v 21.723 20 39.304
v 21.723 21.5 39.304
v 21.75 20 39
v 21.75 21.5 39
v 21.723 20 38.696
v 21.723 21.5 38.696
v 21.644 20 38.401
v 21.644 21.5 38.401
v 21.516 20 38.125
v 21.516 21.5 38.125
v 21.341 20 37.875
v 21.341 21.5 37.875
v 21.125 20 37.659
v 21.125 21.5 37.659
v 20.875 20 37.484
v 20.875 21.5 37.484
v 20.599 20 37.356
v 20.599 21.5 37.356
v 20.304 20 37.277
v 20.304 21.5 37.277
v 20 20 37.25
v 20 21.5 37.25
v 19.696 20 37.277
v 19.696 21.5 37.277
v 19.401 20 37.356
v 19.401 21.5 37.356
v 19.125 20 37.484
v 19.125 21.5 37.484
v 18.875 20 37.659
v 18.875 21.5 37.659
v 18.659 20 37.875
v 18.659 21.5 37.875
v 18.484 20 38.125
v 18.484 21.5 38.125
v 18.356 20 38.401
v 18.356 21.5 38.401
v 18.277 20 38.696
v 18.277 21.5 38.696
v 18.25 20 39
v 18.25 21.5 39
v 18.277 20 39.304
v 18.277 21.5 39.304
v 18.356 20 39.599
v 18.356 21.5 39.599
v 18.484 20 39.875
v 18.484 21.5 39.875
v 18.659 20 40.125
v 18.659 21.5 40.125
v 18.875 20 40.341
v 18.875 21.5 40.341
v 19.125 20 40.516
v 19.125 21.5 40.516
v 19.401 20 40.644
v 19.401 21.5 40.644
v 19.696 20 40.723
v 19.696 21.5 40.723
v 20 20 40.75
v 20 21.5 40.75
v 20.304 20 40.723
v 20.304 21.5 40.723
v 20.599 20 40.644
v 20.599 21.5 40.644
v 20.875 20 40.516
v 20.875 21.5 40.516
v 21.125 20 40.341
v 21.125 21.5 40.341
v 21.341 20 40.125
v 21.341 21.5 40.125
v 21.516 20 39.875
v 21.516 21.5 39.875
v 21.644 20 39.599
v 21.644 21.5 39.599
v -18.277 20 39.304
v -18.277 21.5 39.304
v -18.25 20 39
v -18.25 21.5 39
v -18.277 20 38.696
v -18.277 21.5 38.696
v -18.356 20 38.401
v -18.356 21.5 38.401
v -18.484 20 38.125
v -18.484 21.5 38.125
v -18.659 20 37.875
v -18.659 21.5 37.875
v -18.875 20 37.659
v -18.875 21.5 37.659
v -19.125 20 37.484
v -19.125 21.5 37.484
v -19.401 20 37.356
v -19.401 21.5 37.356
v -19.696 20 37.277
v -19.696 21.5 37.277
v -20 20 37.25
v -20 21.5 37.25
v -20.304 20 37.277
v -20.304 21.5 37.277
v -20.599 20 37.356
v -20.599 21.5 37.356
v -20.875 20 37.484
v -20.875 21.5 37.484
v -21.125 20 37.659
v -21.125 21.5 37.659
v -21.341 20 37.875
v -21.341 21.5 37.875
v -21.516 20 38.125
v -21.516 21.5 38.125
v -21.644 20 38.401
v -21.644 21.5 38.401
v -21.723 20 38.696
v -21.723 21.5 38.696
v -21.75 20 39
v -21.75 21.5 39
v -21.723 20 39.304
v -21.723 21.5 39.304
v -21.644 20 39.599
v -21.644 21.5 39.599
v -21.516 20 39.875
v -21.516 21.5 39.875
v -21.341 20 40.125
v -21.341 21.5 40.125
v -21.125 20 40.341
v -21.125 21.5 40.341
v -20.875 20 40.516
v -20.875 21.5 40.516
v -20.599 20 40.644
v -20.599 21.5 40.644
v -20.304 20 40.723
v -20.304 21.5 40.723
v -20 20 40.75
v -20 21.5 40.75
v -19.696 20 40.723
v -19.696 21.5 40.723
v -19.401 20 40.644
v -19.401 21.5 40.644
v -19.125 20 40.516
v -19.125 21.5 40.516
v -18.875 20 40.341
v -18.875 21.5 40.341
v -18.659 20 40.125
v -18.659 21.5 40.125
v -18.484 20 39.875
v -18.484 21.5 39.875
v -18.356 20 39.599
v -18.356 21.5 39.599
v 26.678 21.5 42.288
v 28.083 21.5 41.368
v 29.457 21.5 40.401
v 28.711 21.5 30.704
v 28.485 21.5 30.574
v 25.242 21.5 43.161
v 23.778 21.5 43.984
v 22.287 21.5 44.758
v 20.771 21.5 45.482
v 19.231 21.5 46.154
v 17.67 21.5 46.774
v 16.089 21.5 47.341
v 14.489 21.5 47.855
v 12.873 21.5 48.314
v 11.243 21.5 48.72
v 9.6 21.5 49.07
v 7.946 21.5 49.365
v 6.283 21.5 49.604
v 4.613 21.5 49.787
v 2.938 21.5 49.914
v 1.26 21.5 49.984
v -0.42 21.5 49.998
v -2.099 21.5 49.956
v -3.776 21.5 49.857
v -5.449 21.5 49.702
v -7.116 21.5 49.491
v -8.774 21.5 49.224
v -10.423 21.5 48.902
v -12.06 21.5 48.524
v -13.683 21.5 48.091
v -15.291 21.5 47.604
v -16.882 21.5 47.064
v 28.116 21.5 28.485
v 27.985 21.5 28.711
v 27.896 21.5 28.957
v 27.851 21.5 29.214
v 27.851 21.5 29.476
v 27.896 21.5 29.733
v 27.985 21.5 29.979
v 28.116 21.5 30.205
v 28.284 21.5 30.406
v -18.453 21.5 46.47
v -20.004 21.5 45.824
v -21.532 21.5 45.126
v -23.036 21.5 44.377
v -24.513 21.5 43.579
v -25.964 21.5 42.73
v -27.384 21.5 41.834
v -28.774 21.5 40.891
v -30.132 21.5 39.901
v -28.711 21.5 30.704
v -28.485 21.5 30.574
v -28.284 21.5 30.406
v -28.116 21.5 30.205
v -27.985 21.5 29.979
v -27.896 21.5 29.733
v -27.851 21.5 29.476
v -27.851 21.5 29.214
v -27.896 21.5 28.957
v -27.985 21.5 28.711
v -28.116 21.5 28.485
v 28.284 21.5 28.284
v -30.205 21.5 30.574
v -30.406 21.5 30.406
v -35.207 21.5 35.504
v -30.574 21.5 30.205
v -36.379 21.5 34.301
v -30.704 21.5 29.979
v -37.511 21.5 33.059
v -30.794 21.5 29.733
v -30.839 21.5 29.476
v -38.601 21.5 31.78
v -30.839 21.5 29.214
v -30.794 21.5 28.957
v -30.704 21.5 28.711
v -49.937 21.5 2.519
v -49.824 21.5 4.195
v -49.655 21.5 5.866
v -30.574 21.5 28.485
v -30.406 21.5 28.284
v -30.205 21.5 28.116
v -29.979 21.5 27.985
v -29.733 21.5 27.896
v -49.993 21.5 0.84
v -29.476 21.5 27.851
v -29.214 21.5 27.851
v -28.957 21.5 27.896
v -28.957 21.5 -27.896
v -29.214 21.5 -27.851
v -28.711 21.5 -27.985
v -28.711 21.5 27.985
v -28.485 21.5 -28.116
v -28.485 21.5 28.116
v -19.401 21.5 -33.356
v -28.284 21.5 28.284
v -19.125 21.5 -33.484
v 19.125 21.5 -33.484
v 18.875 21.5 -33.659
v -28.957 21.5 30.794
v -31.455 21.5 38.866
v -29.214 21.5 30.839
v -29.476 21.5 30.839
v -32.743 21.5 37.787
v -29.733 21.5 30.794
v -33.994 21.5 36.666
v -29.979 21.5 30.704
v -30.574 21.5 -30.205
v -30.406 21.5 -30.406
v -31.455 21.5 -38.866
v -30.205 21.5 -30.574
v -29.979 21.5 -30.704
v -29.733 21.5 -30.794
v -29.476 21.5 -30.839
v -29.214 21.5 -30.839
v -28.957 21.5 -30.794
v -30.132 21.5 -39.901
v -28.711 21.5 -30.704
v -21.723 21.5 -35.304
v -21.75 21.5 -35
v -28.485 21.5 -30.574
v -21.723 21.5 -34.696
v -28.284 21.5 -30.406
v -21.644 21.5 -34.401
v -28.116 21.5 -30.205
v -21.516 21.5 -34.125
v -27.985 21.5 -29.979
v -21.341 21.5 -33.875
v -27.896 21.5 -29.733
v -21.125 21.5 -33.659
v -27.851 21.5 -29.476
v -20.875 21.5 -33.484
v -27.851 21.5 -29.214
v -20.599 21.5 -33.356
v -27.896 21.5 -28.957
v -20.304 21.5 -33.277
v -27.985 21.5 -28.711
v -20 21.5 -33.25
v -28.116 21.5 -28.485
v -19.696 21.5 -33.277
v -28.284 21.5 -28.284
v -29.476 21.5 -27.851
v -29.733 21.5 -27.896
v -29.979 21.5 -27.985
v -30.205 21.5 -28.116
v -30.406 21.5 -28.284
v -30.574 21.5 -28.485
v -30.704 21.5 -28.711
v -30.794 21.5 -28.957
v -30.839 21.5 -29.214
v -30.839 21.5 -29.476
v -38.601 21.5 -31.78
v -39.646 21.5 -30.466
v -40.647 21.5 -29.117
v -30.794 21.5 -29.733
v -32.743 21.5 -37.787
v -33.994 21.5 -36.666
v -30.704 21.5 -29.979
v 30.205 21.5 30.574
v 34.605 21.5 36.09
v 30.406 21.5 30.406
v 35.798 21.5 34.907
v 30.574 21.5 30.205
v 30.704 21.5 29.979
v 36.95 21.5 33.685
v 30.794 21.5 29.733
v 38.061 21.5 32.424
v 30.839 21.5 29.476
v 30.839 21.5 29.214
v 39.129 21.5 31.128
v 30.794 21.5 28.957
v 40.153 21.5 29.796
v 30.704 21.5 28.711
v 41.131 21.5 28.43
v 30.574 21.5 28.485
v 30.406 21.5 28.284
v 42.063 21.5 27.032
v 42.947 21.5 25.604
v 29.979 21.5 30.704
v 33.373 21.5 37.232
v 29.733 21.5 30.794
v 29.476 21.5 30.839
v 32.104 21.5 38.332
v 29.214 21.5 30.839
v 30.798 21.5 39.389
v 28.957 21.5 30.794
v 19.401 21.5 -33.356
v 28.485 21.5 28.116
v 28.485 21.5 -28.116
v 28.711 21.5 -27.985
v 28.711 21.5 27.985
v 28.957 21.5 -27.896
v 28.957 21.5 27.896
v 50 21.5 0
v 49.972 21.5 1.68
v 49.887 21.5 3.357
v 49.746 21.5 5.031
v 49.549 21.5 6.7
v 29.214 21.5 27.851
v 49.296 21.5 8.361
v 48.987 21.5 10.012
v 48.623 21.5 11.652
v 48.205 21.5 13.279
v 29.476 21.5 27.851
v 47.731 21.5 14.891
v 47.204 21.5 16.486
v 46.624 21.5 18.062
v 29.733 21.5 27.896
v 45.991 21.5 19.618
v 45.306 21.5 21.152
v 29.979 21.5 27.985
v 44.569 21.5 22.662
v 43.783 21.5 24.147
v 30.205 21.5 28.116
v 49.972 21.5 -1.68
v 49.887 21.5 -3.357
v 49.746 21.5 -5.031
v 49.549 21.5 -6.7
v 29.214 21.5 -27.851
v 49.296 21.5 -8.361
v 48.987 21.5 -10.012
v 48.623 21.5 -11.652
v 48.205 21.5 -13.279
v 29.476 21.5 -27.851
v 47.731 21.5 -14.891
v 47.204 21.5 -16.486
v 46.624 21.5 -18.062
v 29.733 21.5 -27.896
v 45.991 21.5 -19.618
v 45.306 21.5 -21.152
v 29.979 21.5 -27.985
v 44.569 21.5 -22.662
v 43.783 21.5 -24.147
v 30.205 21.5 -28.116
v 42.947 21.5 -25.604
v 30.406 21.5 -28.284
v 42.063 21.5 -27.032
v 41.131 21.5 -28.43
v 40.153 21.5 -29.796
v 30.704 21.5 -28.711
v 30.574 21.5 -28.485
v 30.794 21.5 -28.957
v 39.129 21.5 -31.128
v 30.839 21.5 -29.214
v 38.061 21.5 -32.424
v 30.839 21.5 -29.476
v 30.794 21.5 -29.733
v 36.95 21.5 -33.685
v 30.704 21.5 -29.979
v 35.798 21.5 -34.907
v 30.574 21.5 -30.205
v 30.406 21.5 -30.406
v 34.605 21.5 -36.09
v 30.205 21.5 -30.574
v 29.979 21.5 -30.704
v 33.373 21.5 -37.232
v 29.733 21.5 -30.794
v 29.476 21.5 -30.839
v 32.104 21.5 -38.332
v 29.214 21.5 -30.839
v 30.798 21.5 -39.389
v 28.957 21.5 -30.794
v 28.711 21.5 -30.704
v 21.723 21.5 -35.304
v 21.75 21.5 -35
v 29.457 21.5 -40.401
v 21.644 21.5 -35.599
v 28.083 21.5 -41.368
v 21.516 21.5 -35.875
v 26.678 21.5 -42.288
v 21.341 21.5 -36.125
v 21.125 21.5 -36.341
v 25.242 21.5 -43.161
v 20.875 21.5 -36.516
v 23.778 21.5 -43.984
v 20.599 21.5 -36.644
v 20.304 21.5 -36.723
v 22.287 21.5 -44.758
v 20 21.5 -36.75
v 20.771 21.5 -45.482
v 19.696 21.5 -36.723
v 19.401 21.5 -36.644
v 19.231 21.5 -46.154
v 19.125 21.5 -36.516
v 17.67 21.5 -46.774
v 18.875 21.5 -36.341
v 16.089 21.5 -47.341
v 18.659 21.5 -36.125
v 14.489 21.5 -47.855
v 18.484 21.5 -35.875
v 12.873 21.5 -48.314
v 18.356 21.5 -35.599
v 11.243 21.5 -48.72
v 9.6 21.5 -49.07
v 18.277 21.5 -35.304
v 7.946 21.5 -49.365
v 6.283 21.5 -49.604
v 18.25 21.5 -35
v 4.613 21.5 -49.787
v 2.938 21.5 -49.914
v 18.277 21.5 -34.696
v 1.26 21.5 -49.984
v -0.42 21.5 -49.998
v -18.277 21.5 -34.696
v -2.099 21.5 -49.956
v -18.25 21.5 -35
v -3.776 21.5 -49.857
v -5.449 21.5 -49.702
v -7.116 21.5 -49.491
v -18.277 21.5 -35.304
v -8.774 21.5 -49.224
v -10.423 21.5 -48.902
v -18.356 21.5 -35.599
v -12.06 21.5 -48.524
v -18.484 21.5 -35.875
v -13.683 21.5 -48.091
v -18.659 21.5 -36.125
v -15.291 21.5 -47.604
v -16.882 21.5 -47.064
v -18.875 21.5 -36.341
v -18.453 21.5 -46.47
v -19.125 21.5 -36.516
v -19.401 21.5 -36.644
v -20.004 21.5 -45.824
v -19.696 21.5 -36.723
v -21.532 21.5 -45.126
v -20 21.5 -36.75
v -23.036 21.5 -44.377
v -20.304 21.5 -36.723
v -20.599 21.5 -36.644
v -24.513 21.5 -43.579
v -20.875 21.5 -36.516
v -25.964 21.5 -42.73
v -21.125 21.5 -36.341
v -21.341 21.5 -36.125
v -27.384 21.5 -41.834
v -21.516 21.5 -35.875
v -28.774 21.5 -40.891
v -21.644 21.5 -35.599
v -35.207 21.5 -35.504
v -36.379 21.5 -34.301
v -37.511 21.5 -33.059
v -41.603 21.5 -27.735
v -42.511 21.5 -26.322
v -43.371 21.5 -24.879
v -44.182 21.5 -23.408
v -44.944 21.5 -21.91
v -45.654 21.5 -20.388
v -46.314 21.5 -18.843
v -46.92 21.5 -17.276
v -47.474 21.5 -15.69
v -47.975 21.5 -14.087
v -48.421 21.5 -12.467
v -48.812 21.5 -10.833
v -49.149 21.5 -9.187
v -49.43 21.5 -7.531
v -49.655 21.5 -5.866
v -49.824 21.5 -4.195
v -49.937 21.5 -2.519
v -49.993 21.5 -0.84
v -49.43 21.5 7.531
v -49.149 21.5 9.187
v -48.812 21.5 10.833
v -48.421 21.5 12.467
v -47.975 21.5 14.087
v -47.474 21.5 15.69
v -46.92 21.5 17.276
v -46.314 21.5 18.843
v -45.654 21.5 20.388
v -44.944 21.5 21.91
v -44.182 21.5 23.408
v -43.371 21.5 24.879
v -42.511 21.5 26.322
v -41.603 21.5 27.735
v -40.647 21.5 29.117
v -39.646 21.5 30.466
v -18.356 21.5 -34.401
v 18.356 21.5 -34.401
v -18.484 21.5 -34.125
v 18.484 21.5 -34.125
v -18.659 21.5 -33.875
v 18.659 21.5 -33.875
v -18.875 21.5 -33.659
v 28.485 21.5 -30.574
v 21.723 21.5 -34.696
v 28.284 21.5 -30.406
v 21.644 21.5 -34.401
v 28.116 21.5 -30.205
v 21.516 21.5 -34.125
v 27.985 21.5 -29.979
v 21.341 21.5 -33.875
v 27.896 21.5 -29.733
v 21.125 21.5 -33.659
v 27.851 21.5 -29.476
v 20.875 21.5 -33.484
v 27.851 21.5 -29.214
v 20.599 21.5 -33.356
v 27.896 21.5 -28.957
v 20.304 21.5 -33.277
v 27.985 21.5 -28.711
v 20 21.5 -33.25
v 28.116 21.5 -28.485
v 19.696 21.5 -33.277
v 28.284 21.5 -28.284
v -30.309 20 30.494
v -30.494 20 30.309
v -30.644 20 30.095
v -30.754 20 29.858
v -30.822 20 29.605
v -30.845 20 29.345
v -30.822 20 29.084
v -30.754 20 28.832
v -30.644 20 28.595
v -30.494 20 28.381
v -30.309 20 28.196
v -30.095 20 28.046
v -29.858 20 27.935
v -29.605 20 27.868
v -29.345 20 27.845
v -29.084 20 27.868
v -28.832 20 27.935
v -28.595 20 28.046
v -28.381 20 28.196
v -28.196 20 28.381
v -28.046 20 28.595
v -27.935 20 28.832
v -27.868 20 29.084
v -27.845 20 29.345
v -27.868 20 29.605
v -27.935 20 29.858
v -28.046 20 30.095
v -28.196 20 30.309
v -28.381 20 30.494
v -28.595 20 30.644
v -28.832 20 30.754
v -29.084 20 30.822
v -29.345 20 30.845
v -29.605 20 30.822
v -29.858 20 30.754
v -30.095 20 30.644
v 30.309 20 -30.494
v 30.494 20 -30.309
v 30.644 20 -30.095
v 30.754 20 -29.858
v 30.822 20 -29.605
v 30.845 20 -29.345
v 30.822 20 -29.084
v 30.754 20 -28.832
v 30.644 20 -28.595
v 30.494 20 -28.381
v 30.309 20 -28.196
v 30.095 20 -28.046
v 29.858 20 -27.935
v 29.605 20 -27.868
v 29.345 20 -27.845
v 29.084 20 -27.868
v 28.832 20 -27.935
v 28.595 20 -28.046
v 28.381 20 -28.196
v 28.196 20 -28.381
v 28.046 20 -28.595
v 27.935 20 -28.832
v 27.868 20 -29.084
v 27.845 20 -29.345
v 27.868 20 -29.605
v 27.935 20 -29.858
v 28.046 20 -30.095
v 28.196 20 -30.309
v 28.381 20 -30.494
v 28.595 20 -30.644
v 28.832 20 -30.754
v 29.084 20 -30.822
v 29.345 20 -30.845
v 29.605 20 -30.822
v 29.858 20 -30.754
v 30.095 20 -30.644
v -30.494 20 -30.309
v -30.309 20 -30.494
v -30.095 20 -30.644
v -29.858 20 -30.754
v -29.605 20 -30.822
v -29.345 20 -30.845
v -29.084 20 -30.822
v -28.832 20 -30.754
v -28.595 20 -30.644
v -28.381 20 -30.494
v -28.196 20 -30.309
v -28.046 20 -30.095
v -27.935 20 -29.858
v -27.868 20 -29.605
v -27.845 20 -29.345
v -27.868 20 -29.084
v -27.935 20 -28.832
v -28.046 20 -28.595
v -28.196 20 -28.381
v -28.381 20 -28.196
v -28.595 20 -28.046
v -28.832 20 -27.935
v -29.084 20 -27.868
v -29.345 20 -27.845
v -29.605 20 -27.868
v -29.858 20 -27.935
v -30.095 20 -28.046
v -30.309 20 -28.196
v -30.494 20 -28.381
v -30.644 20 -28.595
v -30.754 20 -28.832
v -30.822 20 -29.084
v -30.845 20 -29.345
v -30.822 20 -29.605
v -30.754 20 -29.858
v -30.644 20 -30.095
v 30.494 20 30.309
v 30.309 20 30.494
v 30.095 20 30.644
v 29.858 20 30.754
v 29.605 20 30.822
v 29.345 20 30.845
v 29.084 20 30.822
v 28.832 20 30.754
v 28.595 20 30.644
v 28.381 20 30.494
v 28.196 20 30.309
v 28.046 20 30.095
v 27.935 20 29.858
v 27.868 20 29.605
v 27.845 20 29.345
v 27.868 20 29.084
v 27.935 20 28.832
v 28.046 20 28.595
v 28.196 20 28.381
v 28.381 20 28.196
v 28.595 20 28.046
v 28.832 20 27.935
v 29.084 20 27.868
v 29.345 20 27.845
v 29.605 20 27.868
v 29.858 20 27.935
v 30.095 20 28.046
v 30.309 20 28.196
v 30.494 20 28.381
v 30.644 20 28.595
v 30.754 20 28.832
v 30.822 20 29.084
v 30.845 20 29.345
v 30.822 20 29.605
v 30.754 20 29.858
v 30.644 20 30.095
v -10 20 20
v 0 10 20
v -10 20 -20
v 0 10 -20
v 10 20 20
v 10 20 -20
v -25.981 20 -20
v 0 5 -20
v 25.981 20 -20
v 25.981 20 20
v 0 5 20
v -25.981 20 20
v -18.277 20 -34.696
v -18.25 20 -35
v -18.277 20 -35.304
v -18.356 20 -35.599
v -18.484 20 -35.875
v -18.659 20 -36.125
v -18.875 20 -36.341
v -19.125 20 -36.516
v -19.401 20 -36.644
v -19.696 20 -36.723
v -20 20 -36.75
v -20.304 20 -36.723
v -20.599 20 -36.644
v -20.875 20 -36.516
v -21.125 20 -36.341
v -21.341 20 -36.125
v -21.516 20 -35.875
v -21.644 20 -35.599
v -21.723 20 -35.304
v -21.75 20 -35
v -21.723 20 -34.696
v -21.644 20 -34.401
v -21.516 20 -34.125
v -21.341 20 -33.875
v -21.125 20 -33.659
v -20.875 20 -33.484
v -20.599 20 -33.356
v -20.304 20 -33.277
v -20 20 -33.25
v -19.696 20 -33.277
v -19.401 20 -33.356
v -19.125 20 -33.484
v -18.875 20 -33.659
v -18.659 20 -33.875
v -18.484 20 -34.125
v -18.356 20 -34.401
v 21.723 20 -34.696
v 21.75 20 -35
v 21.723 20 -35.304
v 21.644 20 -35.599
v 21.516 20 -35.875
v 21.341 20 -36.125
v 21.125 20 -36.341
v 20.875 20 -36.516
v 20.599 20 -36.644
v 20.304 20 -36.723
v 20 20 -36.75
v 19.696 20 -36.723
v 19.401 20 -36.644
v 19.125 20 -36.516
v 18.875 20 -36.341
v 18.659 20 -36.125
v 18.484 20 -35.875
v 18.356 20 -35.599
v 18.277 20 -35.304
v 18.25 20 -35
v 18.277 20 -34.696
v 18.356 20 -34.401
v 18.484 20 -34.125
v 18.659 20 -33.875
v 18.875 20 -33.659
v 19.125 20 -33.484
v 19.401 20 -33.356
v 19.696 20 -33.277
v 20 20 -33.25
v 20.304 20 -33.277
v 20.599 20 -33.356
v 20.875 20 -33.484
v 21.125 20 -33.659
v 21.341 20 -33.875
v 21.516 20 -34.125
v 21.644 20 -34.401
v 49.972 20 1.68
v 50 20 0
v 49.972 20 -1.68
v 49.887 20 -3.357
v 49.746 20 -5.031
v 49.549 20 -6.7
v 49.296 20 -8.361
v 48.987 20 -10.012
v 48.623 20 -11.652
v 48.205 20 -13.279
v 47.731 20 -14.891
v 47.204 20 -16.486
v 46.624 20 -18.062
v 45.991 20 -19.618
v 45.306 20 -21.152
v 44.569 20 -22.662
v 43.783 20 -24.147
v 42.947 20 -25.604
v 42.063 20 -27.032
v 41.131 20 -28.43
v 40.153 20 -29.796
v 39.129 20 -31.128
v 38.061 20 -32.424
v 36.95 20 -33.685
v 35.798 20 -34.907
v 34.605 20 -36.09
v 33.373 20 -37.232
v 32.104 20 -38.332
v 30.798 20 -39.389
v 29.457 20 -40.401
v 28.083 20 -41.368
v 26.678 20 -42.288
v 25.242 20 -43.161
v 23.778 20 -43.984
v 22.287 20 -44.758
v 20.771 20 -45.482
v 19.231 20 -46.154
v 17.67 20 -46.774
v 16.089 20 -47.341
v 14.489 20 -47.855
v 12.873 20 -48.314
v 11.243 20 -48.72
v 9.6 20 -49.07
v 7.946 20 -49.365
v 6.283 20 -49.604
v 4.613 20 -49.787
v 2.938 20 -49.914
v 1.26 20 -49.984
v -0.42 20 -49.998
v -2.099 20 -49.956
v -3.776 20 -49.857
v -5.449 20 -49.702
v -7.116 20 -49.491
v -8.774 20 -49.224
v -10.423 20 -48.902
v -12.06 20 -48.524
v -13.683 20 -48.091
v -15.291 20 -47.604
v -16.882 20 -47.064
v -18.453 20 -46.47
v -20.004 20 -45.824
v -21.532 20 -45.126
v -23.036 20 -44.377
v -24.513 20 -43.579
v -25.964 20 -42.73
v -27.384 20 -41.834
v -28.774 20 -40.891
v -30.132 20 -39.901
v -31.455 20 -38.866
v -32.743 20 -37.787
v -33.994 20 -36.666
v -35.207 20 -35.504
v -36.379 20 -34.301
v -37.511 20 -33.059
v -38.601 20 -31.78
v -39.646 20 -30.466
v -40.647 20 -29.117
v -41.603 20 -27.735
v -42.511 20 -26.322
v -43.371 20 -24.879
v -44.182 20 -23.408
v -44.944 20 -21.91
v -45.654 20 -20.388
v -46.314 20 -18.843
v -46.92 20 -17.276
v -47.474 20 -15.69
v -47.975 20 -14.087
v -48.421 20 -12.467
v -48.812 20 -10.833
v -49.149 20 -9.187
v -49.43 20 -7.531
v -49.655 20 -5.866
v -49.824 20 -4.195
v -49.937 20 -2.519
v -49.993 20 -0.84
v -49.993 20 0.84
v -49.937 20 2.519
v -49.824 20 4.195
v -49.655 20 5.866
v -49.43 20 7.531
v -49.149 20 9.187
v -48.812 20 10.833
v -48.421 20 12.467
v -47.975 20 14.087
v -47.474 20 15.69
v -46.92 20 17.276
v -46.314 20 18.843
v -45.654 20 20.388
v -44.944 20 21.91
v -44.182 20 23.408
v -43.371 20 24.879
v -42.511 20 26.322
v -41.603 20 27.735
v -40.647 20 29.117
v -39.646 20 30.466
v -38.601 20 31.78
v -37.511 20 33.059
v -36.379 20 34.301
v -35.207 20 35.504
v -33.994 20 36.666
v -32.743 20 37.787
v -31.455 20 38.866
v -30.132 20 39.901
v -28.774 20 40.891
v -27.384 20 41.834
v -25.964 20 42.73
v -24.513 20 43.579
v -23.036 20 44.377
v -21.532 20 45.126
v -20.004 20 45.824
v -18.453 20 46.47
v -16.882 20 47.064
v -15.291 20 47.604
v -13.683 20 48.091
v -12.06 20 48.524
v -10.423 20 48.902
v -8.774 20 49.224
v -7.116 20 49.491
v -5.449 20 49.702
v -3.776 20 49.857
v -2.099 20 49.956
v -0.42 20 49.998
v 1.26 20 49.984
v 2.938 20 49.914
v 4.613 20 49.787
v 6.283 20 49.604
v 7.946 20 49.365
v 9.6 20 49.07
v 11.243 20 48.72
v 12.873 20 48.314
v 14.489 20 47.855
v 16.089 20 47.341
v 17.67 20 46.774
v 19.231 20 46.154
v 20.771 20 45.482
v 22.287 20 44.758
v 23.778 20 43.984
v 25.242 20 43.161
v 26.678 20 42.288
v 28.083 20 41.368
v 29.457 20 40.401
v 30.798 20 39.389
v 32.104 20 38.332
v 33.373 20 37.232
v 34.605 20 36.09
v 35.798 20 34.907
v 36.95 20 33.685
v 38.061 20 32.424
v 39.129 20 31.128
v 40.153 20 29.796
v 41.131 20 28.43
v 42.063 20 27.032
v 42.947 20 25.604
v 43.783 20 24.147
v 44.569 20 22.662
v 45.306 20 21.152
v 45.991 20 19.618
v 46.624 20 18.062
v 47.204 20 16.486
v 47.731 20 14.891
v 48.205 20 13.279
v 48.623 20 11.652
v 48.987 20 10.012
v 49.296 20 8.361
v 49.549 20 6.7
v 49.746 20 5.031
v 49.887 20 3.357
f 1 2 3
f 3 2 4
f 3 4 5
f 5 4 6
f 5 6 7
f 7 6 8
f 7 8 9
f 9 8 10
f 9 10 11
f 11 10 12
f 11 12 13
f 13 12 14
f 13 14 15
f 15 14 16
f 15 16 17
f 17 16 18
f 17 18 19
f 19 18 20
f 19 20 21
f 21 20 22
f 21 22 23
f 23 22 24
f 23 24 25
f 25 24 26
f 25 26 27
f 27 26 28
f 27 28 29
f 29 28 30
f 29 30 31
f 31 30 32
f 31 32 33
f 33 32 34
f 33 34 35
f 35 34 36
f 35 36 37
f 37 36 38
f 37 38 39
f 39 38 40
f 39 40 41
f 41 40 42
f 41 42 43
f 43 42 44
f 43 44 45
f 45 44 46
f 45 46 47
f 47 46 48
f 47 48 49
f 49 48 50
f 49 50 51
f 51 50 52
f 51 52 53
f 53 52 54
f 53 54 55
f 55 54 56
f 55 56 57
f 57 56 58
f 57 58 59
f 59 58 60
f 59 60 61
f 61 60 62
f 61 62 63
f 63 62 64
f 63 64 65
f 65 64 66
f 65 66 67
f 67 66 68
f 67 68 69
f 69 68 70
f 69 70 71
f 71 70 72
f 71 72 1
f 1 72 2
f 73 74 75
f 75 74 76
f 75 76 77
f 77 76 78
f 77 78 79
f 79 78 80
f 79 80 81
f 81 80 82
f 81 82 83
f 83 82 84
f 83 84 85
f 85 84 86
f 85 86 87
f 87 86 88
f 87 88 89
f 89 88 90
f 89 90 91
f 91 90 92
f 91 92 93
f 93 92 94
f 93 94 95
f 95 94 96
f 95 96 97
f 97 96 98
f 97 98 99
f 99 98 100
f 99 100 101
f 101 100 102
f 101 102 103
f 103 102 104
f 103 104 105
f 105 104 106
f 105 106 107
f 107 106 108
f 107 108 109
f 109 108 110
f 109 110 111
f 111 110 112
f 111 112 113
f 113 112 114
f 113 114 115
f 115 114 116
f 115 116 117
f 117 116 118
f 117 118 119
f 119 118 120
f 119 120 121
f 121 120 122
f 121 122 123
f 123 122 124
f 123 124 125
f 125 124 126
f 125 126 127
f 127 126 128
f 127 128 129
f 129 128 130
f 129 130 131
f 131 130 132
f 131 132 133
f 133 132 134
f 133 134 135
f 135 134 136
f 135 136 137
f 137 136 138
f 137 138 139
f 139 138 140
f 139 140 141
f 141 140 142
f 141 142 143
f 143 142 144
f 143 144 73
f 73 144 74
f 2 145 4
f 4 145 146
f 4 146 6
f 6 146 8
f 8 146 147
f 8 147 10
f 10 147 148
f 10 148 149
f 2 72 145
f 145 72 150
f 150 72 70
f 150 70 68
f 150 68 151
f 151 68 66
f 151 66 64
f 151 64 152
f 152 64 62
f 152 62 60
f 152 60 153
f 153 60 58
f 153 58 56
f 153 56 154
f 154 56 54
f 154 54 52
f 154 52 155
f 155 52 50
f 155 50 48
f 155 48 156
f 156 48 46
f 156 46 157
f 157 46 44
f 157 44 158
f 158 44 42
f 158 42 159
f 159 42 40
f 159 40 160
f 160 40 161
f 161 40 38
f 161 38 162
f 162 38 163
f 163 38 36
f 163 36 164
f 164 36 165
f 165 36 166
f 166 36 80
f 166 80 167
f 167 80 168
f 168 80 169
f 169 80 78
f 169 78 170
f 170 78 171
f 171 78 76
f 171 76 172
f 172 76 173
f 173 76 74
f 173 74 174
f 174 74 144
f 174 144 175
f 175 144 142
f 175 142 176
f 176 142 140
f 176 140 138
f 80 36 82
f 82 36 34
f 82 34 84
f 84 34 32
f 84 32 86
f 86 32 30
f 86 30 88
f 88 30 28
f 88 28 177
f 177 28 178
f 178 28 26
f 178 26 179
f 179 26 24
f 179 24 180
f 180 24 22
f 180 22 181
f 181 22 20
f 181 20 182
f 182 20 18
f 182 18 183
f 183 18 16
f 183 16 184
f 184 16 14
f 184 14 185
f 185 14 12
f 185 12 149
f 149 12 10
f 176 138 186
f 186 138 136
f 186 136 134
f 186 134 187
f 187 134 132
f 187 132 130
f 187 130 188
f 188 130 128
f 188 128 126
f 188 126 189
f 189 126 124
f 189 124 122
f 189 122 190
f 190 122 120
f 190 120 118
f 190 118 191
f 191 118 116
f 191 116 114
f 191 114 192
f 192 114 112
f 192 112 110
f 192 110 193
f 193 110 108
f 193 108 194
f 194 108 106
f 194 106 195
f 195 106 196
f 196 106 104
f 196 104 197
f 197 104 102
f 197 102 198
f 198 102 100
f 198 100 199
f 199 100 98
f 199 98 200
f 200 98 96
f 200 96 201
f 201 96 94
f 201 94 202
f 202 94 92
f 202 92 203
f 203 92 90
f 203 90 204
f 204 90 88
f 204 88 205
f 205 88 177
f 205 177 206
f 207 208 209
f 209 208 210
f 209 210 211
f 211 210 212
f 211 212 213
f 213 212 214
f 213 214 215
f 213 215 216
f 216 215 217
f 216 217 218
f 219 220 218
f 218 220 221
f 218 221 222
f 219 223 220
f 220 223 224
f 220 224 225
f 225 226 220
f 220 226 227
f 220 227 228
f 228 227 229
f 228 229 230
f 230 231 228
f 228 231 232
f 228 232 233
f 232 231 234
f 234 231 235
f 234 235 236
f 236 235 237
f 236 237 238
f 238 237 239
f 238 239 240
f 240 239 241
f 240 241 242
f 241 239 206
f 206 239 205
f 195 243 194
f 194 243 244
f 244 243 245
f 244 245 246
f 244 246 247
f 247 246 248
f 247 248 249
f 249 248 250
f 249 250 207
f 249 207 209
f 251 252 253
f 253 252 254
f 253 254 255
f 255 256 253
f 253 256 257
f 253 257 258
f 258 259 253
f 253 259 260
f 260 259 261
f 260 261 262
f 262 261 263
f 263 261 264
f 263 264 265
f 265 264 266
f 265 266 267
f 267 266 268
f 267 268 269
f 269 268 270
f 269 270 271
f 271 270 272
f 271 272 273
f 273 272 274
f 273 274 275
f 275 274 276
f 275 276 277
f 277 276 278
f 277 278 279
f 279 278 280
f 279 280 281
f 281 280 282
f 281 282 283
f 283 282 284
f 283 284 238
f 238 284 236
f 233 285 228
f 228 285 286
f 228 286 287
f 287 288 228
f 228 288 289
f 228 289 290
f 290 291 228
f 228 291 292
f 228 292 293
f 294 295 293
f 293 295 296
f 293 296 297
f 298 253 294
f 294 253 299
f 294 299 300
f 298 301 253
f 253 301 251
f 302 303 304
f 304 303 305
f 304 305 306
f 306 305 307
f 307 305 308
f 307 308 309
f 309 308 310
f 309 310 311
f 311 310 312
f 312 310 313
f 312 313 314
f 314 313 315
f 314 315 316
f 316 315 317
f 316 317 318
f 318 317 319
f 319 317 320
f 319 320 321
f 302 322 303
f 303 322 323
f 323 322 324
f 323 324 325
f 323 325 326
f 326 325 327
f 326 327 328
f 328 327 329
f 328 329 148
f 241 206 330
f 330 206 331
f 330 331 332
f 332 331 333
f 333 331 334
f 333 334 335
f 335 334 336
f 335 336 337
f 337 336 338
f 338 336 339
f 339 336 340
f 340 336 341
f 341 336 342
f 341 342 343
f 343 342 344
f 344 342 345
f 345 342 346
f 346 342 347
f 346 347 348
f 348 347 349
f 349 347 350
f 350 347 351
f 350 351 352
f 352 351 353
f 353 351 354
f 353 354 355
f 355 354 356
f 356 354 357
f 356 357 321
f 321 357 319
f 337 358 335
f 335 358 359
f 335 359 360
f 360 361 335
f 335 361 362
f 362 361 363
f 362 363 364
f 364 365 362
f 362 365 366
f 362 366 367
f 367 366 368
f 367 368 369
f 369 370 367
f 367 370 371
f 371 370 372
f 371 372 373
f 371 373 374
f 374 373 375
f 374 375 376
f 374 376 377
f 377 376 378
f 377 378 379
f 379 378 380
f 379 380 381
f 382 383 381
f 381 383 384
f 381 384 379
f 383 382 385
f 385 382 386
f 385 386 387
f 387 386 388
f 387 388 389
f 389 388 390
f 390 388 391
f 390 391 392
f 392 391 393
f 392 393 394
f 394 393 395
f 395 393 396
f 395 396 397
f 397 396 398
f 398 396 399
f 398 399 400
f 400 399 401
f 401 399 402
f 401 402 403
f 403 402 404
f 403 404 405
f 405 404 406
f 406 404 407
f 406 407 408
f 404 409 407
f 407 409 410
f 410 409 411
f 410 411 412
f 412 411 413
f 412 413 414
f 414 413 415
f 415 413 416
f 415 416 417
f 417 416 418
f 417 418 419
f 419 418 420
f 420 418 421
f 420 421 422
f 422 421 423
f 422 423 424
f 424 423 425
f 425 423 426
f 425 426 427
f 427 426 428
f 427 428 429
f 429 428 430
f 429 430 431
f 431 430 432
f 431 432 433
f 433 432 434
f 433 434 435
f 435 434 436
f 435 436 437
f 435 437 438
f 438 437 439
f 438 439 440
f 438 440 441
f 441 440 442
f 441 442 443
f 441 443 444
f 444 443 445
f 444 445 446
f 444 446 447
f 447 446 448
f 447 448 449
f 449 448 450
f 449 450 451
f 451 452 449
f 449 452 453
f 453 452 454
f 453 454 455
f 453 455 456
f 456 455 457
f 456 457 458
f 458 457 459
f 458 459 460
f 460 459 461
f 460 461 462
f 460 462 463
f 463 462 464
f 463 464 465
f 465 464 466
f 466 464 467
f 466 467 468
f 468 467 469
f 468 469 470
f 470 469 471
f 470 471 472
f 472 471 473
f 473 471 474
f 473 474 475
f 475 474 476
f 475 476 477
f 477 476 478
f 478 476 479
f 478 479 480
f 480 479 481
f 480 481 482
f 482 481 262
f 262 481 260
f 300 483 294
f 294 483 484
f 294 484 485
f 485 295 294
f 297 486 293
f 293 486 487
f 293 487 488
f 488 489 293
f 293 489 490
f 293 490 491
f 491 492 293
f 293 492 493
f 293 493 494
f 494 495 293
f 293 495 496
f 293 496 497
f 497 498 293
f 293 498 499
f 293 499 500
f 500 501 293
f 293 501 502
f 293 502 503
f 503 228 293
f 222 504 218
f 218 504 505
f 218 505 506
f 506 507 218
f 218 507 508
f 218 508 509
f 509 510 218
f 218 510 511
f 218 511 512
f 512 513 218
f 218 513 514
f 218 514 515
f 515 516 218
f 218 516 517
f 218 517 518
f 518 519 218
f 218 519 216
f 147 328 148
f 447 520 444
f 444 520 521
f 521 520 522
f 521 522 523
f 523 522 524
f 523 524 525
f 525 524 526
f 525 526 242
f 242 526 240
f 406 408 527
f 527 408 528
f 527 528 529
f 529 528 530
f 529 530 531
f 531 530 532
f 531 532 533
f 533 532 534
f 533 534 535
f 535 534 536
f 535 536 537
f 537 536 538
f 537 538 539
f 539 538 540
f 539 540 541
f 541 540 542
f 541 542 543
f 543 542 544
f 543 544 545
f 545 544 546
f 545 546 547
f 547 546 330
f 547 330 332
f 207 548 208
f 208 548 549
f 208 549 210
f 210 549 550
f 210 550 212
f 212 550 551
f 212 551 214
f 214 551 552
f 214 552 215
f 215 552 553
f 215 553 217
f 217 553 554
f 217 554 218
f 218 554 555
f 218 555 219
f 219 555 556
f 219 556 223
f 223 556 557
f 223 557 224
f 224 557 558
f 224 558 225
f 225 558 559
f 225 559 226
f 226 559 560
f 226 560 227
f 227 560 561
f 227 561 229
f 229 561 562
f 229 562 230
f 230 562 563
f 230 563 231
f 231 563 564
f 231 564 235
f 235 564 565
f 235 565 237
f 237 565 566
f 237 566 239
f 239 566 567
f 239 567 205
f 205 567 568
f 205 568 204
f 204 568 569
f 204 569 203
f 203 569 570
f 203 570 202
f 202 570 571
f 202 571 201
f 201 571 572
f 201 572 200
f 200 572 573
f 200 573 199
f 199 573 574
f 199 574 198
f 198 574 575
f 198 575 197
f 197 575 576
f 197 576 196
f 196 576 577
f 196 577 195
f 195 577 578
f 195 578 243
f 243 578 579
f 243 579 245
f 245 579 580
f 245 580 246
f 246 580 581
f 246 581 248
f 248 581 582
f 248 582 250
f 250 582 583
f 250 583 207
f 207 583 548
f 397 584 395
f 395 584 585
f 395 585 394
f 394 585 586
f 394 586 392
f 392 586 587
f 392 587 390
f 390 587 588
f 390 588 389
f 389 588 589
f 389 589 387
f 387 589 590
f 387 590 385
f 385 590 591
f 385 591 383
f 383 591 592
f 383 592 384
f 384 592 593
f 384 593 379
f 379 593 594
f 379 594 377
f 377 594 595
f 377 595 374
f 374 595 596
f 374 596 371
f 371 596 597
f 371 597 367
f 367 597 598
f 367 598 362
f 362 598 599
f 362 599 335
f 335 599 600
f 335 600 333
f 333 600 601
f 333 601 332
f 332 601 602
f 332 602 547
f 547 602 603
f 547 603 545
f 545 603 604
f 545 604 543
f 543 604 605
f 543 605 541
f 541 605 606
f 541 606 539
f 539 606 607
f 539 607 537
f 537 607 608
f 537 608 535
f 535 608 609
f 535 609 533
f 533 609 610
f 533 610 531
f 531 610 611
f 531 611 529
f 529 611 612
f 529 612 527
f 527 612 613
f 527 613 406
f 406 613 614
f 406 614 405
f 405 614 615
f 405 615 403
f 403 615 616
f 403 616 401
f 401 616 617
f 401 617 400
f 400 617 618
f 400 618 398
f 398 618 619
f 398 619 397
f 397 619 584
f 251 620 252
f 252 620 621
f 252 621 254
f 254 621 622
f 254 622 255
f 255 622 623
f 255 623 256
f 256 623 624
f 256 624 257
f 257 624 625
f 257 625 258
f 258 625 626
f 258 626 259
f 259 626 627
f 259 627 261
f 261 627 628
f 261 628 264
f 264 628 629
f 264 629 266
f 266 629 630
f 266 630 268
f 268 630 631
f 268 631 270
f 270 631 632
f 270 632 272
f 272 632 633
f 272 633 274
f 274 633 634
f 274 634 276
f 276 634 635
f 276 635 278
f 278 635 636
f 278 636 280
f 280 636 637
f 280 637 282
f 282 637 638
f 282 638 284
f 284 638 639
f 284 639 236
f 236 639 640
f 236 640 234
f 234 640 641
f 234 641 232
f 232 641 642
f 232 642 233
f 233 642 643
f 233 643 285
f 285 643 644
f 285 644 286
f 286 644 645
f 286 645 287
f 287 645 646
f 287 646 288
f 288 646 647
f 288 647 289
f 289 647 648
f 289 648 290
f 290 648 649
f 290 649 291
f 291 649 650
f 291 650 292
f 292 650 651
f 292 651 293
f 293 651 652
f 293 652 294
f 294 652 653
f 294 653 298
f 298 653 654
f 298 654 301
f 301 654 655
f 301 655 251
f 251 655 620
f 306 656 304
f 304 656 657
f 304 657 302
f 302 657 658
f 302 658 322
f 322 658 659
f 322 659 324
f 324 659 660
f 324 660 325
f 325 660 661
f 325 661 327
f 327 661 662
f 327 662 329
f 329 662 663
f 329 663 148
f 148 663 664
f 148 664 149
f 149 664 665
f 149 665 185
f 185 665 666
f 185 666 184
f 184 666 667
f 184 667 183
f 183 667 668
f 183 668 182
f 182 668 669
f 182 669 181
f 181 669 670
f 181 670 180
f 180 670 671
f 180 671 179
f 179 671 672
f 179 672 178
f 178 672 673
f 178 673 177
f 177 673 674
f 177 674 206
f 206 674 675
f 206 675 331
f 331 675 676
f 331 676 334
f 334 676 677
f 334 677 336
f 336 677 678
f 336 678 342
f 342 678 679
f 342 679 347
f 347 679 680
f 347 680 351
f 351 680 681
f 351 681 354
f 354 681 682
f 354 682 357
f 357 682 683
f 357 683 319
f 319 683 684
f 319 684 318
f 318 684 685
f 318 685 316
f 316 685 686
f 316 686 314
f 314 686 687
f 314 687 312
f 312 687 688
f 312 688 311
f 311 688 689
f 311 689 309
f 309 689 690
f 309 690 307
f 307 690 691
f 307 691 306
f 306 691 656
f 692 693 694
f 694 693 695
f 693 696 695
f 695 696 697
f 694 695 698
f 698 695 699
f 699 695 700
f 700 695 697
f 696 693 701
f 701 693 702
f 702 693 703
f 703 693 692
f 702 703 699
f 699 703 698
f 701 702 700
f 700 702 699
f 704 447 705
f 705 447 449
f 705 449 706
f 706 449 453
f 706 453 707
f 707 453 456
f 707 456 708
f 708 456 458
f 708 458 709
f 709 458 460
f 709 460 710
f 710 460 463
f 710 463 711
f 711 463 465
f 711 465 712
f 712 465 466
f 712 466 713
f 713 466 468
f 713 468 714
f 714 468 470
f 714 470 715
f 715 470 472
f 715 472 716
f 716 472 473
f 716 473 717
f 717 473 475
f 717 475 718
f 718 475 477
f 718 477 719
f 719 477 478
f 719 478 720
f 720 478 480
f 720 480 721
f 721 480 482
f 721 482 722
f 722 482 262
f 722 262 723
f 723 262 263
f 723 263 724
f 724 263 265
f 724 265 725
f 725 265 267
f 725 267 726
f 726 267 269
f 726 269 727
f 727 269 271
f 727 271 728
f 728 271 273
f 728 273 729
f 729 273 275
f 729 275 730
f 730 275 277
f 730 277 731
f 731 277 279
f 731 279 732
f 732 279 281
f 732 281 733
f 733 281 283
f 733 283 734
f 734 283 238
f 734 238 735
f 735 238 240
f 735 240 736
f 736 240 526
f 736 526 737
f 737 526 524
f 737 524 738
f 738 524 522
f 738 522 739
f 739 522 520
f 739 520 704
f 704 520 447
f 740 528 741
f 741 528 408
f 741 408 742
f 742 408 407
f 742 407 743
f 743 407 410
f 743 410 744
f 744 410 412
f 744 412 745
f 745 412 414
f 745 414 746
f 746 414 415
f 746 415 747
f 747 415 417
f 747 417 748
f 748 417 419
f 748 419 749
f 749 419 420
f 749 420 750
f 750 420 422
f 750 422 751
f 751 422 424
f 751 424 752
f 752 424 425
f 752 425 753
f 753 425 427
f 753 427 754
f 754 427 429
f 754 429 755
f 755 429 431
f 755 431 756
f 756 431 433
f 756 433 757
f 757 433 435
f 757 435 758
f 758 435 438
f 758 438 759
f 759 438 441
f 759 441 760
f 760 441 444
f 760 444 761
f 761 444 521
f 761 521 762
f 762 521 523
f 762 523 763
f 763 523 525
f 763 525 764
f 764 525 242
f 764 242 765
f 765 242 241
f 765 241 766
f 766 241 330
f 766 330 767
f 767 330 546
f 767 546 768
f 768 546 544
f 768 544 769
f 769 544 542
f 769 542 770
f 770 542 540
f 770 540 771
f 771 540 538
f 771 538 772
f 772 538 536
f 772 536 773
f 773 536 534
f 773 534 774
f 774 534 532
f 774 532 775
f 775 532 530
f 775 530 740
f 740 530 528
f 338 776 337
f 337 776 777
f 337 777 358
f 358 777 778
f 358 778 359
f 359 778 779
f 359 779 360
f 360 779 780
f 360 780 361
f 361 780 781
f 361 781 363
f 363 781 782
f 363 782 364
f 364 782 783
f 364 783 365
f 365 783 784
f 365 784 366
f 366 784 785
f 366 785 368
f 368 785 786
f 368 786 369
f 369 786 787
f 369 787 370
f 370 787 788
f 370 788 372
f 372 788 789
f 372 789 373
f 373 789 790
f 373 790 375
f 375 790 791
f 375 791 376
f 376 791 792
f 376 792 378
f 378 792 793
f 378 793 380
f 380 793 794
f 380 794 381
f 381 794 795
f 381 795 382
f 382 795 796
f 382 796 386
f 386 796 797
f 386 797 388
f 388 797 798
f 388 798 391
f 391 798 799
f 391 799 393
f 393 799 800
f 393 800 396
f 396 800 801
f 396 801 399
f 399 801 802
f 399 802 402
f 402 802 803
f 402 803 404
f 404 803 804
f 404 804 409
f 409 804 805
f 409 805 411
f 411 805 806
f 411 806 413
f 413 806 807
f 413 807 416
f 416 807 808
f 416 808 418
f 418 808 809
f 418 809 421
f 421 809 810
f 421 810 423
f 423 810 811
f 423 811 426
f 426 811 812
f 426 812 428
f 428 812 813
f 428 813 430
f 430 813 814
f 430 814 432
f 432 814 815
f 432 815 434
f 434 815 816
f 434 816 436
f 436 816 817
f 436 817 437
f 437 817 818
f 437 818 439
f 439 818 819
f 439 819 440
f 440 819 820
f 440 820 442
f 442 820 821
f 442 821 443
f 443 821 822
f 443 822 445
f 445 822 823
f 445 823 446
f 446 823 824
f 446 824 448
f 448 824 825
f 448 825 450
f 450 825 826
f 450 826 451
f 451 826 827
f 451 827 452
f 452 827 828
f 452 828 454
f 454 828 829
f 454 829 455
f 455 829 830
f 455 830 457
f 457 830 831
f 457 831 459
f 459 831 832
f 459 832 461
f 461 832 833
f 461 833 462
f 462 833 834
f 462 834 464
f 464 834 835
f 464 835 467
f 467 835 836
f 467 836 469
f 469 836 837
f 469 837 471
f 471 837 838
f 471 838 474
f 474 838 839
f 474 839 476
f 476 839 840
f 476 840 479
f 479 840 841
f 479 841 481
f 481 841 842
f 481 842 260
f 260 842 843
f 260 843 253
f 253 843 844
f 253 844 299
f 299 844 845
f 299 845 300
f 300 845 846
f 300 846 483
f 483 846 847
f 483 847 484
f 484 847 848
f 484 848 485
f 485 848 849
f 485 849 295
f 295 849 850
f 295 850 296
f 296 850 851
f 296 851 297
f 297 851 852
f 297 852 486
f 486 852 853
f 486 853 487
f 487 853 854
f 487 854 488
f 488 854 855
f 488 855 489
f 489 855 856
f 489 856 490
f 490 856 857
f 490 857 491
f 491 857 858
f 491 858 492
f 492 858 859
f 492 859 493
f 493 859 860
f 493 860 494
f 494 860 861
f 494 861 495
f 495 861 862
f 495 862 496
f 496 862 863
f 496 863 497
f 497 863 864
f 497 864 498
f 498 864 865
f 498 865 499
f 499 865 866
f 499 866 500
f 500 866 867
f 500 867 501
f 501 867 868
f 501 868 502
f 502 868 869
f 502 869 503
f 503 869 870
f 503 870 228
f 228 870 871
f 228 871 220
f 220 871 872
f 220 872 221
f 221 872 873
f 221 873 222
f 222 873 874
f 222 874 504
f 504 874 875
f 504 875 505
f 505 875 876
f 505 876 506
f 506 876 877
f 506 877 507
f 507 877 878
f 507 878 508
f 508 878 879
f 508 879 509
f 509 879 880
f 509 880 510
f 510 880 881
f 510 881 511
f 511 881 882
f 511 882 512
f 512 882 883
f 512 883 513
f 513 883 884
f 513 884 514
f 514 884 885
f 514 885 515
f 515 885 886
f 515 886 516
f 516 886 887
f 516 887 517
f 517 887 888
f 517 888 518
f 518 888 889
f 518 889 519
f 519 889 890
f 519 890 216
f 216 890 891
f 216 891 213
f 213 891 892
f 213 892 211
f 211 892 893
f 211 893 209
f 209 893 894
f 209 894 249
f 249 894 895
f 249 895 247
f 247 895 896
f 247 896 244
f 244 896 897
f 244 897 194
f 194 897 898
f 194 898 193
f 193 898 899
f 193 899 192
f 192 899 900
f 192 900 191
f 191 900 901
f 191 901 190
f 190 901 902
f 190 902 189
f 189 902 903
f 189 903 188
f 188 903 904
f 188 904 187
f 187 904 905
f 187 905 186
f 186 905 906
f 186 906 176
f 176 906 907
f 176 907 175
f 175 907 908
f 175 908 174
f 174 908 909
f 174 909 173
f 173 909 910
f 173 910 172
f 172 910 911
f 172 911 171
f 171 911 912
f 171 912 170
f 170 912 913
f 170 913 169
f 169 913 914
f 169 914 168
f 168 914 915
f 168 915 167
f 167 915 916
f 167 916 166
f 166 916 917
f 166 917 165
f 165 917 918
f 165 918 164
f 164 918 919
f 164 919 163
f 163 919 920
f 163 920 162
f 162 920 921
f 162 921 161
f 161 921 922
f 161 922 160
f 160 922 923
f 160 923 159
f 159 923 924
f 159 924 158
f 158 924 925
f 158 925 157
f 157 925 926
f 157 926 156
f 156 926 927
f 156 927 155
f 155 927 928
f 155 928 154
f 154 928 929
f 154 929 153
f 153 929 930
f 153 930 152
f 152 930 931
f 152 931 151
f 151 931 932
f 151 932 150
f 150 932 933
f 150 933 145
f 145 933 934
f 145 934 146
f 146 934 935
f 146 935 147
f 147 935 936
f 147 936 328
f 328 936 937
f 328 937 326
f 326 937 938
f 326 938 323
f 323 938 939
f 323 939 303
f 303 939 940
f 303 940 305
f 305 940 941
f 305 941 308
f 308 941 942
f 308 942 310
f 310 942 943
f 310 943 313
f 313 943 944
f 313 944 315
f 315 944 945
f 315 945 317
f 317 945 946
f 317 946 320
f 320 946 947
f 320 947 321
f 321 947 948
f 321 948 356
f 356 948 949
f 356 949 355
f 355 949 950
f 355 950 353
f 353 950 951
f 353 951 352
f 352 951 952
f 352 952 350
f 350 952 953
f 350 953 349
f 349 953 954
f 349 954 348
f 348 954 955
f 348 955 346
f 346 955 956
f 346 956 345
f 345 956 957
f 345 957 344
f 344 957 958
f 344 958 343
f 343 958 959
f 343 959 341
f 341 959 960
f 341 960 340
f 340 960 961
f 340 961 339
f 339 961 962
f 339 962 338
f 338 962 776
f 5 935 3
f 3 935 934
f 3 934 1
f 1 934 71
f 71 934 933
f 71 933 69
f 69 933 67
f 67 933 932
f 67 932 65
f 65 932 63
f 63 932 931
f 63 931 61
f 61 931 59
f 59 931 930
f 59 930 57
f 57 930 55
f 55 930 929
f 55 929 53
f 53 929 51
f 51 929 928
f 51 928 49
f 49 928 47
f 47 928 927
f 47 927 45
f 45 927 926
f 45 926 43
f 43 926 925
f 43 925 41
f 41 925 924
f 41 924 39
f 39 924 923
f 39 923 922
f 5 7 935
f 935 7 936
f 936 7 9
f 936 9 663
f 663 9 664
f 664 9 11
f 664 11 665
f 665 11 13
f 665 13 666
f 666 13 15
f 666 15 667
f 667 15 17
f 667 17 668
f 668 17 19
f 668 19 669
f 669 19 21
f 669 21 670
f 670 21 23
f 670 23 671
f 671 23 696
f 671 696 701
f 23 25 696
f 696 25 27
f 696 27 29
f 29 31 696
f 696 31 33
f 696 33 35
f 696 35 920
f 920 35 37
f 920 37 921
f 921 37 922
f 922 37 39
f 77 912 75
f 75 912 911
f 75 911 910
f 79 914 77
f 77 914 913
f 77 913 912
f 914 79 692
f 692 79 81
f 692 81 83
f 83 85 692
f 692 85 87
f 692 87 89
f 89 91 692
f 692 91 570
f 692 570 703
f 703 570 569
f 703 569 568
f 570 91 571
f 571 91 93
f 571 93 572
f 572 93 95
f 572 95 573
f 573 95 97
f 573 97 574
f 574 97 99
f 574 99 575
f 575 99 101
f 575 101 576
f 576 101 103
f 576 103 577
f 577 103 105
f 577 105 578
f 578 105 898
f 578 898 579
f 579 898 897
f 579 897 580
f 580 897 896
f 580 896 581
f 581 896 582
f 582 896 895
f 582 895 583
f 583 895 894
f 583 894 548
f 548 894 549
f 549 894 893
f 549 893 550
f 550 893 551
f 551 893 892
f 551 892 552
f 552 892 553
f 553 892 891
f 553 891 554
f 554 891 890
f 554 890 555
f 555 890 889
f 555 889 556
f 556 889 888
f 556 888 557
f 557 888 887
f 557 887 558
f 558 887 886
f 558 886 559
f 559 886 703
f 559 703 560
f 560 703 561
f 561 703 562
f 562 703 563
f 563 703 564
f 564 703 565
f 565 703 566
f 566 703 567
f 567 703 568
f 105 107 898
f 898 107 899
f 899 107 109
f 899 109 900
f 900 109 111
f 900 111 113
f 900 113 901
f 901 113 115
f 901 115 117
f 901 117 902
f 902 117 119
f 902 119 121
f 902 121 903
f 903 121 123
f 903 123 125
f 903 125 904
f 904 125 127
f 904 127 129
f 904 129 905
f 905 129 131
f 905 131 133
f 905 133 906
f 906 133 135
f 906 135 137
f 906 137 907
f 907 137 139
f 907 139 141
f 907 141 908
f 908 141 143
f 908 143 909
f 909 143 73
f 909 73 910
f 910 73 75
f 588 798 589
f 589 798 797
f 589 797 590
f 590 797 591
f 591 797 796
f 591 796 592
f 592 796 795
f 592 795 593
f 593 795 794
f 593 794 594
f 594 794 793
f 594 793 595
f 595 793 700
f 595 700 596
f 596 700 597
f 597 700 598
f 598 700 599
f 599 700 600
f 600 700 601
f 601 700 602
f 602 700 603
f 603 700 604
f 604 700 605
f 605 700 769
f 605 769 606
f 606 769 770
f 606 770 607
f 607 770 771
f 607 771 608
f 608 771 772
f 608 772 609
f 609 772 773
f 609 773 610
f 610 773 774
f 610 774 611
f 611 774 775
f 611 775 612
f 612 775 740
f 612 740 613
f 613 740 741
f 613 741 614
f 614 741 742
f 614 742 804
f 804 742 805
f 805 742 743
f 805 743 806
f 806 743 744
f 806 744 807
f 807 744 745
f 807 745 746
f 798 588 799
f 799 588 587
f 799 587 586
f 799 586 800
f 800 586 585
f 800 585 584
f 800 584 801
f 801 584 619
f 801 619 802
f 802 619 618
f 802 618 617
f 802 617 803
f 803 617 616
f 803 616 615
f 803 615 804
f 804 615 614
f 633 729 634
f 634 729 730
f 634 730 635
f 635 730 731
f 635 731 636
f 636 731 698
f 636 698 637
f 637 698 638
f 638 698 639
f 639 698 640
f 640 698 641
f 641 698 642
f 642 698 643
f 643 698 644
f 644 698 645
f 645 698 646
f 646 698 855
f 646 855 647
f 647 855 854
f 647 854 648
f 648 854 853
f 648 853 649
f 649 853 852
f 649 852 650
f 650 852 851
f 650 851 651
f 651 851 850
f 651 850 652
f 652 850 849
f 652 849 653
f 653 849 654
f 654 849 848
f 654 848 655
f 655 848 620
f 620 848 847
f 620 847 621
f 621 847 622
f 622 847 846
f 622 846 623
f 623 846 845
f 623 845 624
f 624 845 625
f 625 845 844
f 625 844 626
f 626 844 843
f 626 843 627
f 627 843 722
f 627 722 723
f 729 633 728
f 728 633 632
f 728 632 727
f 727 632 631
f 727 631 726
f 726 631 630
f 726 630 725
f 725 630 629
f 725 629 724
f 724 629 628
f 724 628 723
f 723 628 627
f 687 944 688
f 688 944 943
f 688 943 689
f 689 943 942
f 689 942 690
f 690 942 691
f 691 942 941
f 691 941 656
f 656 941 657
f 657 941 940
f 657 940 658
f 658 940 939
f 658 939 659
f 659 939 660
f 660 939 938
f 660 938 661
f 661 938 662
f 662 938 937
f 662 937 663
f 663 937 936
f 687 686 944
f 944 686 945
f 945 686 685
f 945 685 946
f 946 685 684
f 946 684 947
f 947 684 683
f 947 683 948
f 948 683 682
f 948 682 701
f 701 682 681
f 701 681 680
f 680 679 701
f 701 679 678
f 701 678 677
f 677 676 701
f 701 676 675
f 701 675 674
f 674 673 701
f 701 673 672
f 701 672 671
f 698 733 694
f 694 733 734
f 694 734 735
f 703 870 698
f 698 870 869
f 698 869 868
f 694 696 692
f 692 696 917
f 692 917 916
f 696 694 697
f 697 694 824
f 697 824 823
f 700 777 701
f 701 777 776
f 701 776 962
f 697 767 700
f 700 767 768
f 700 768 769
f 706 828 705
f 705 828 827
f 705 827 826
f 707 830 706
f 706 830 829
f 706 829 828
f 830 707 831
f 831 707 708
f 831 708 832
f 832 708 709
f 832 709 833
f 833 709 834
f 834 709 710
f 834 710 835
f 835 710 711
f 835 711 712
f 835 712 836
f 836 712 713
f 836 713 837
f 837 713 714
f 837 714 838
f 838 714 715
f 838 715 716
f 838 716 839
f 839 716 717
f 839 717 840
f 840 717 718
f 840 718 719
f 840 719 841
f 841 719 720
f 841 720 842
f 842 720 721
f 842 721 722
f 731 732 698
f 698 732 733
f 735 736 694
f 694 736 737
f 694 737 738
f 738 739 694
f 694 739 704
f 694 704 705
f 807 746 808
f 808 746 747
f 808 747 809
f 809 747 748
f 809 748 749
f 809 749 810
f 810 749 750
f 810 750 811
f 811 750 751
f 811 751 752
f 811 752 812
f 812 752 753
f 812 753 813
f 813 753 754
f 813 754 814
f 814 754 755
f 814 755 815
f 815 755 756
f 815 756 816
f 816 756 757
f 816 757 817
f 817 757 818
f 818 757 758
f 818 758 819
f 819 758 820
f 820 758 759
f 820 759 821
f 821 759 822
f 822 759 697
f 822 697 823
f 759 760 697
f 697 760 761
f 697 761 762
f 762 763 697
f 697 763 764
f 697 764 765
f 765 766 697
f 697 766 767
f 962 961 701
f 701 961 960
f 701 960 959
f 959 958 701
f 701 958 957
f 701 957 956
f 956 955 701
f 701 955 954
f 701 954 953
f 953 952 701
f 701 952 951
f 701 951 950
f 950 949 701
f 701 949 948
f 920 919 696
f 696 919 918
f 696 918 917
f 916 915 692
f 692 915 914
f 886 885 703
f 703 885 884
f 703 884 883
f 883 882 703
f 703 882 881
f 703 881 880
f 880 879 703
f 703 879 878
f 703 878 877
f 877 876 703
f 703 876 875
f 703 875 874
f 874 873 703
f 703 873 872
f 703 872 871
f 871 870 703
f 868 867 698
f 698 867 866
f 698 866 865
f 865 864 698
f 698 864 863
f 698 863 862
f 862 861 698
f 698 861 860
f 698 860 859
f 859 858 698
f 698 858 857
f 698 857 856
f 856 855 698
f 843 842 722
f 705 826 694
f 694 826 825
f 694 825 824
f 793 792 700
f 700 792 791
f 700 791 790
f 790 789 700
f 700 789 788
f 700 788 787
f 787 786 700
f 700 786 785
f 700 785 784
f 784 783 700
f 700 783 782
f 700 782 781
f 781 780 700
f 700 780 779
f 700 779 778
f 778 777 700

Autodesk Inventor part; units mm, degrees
ref_plane "YZ Plane" through (0, 0, 0) normal (1, 0, 0) x (0, 1, 0)
ref_plane "Work Plane3" through (-4.3301, 20, -20) normal (0, 1, 0) x (1, 0, 0)
sketch "Sketch4" plane through (-4.3301, 20, -20) normal (0, 1, 0) x (1, 0, 0)
  circle A0 centre (4.3301, -20) radius 50
  dimension "d16" = 100
extrude "Extrusion4" add sketch "Sketch4" along normal blind 1.5
sketch "Sketch9" plane through (0, 0, 0) normal (0, 0, 1) x (1, 0, 0)
  line L0 (50, 21.5) -> (-50, 21.5) projected
  line L1 (50, 21.5) -> (43, 21.5)
  line L2 (50, 21.5) -> (50, 26.5)
  line L3 (50, 26.5) -> (48, 26.5)
  line L4 (48, 26.5) -> (43, 21.5)
  line L5 (0, 21.5) -> (0, 37.2)
  point P0 (0, 0)
  dimension "d27" = 7
  dimension "d28" = 5
  dimension "d29" = 2
revolve "Revolution1" add sketch "Sketch9" angle 360 about axis through (0, 21.5, 0) along (0, 1, 0)
ref_plane "Work Plane2" through (0, 21.5, 0) normal (0, 1, 0) x (1, 0, 0)
sketch "Sketch12" plane through (0, 21.5, 0) normal (0, 1, 0) x (1, 0, 0)
  line L0 (0, 0) -> (20, 0)
  line L1 (20, 0) -> (20, -35)
  line L2 (20, -35) -> (-20, -35)
  line L3 (-20, -35) -> (-20, 35)
  line L4 (-20, 35) -> (20, 35)
  line L5 (20, 35) -> (20, -35)
  circle A0 centre (20, 35) radius 1.75
  circle A1 centre (-20, 35) radius 1.75
  circle A2 centre (-20, -35) radius 1.75
  circle A3 centre (20, -35) radius 1.75
  dimension "d47" = 20
  dimension "d48" = 35
  dimension "d49" = 40
  dimension "d50" = 70
  dimension "d51" = 3.5
  dimension "d52" = 3.5
  dimension "d53" = 3.5
  dimension "d54" = 3.5
extrude "Extrusion6" cut sketch "Sketch12" against normal blind 1.5 contours A3 L2 L1 | L1 L2 A3 | A0 L4 L5 | L5 L4 A0 | A2 L3 L2 | L2 L3 A2 | A1 L3 L4 | L4 L3 A1
sketch "Sketch13" plane through (0, 0, 0) normal (0, 0, 1) x (1, 0, 0)
  line L0 (0, 0) -> (25, 0) construction
  line L1 (-50, 20) -> (50, 20) projected
  line L2 (0, 7.5) -> (-21.6506, 20)
  line L3 (0, 7.5) -> (21.6506, 20)
  line L4 (0, 7.5) -> (25, 7.5) construction
  line L5 (21.6506, 20) -> (-21.6506, 20)
  line L6 (0, 7.5) -> (0, 12.5)
  line L7 (0, 20) -> (-5, 20)
  line L8 (-5, 20) -> (0, 12.5)
  line L9 (0, 20) -> (5, 20)
  line L10 (5, 20) -> (0, 12.5)
  dimension "d60" = 25
  dimension "d61" = 30
  dimension "d62" = 5
  dimension "d63" = 5
  dimension "d64" = 5
extrude "Extrusion7" add sketch "Sketch13" along normal mid plane 40 contours L1 L8 L6 L2 | L6 L10 L1 L3
sketch "Sketch16" plane through (0, 0, 20) normal (0, 0, 1) x (1, 0, 0)
  line L0 (-50, 20) -> (50, 20) projected
  line L1 (0, 20) -> (0, 5)
  line L2 (0, 5) -> (23.8952, 18.7959)
  line L3 (23.8952, 18.7959) -> (25.9808, 20)
  line L4 (25.9808, 20) -> (-25.9812, 20)
  line L5 (-25.9812, 20) -> (0, 5)
  point P0 (0, 0)
  dimension "d67" = 15
  dimension "d68" = 60
  dimension "d69" = 51.962
extrude "Extrusion8" add sketch "Sketch16" against normal blind 40
sketch "Sketch17" plane through (0, 0, 20) normal (0, 0, 1) x (1, 0, 0)
  line L0 (0, 5) -> (-25.9812, 20) projected
  line L1 (0, 5) -> (0, 10)
  line L2 (0, 10) -> (6.8298, 16.8298)
  line L3 (6.8298, 16.8298) -> (10, 20)
  line L4 (-50, 20) -> (50, 20) projected
  line L5 (10, 20) -> (-10, 20)
  line L6 (-10, 20) -> (0, 10)
  point P0 (0, 0)
  dimension "d72" = 5
  dimension "d73" = 135
  dimension "d74" = 20
extrude "Extrusion9" cut sketch "Sketch17" against normal blind 40 contours L6 L4 L3 L2
sketch "Sketch18" plane through (0, 20, 0) normal (0, -1, 0) x (1, 0, 0)
  line L0 (0, 0) -> (-35.3553, 35.3553)
  circle A0 centre (0, 0) radius 50 projected
  line L1 (0, 0) -> (50, 0) construction
  line L2 (0, 0) -> (35.3553, 35.3553)
  line L3 (0, 0) -> (50, 0) construction
  line L4 (0, 0) -> (-35.3553, -35.3553)
  line L5 (0, 0) -> (50, 0) construction
  line L6 (0, 0) -> (35.3553, -35.3553)
  line L7 (0, 0) -> (50, 0) construction
  circle A1 centre (0, 0) radius 43 projected
  line L8 (-30.4056, 30.4056) -> (-29.3449, 29.3449)
  line L9 (30.4056, 30.4056) -> (29.3449, 29.3449)
  line L10 (30.4056, -30.4056) -> (29.3449, -29.3449)
  line L11 (-30.4056, -30.4056) -> (-29.3449, -29.3449)
  circle A2 centre (-29.3449, -29.3449) radius 1.5
  circle A3 centre (29.3449, -29.3449) radius 1.5
  circle A4 centre (-29.3449, 29.3449) radius 1.5
  circle A5 centre (29.3449, 29.3449) radius 1.5
  dimension "d77" = 135
  dimension "d78" = 45
  dimension "d79" = 135
  dimension "d80" = 45
  dimension "d81" = 1.5
  dimension "d82" = 1.5
  dimension "d83" = 1.5
  dimension "d84" = 1.5
extrude "Extrusion10" cut sketch "Sketch18" against normal blind 40 contours A4 L0 | L0 A4 | A5 L2 | L2 A5 | A2 L4 | L4 A2 | A3 L6 | L6 A3
sketch "Sketch20" plane through (-4.3301, 21.5, -20) normal (0, 1, 0) x (1, 0, 0)
  circle A0 centre (-15.6699, 15) radius 1.75 projected
  circle A1 centre (-15.6699, 15) radius 3.5
  circle A2 centre (24.3301, 15) radius 1.75 projected
  circle A3 centre (24.3301, 15) radius 3.5
  circle A4 centre (24.3301, -55) radius 1.75 projected
  circle A5 centre (24.3301, -55) radius 3.5
  circle A6 centre (-15.6699, -55) radius 1.75 projected
  circle A7 centre (-15.6699, -55) radius 3.5
  point P0 (4.3301, -20)
  dimension "d87" = 7
  dimension "d88" = 7
  dimension "d89" = 7
  dimension "d90" = 7
extrude "Extrusion11" cut sketch "Sketch20" along normal blind 10
sketch "Sketch21" plane through (-4.3301, 21.5, -20) normal (0, 1, 0) x (1, 0, 0)
  circle A0 centre (4.3301, -20) radius 67.7461
extrude "Extrusion12" cut sketch "Sketch21" along normal blind 10
sketch "Sketch22" plane through (0, 5, -20) normal (0.5, -0.866, 0) x (0.866, 0.5, 0)
  point P0 (-2.5, 20)
sketch "Sketch23" plane through (0, 21.5, 0) normal (0, 1, 0) x (1, 0, 0)
  circle A0 centre (20, -35) radius 1.75 projected
  line L0 (20, -35) -> (20, -39)
  circle A1 centre (-20, -35) radius 1.75 projected
  line L1 (-20, -35) -> (-20, -39)
  circle A2 centre (20, -39) radius 1.75
  circle A3 centre (-20, -39) radius 1.75
  point P0 (0, 0)
  dimension "d95" = 4
  dimension "d96" = 4
  dimension "d97" = 3.5
  dimension "d98" = 3.5
extrude "Extrusion13" cut sketch "Sketch23" against normal blind 10 contours A2 | A3
sketch "Sketch24" plane through (0, 21.5, 0) normal (0, 1, 0) x (1, 0, 0)
  circle A0 centre (20, -35) radius 1.75 projected
  circle A1 centre (20, -35) radius 1.75
  circle A2 centre (-20, -35) radius 1.75 projected
  circle A3 centre (-20, -35) radius 1.75
  point P0 (0, 0)
extrude "Extrusion14" add sketch "Sketch24" against normal blind 1.5
properties part number "Mirror Mount" material "Acetal Resin, Black"
